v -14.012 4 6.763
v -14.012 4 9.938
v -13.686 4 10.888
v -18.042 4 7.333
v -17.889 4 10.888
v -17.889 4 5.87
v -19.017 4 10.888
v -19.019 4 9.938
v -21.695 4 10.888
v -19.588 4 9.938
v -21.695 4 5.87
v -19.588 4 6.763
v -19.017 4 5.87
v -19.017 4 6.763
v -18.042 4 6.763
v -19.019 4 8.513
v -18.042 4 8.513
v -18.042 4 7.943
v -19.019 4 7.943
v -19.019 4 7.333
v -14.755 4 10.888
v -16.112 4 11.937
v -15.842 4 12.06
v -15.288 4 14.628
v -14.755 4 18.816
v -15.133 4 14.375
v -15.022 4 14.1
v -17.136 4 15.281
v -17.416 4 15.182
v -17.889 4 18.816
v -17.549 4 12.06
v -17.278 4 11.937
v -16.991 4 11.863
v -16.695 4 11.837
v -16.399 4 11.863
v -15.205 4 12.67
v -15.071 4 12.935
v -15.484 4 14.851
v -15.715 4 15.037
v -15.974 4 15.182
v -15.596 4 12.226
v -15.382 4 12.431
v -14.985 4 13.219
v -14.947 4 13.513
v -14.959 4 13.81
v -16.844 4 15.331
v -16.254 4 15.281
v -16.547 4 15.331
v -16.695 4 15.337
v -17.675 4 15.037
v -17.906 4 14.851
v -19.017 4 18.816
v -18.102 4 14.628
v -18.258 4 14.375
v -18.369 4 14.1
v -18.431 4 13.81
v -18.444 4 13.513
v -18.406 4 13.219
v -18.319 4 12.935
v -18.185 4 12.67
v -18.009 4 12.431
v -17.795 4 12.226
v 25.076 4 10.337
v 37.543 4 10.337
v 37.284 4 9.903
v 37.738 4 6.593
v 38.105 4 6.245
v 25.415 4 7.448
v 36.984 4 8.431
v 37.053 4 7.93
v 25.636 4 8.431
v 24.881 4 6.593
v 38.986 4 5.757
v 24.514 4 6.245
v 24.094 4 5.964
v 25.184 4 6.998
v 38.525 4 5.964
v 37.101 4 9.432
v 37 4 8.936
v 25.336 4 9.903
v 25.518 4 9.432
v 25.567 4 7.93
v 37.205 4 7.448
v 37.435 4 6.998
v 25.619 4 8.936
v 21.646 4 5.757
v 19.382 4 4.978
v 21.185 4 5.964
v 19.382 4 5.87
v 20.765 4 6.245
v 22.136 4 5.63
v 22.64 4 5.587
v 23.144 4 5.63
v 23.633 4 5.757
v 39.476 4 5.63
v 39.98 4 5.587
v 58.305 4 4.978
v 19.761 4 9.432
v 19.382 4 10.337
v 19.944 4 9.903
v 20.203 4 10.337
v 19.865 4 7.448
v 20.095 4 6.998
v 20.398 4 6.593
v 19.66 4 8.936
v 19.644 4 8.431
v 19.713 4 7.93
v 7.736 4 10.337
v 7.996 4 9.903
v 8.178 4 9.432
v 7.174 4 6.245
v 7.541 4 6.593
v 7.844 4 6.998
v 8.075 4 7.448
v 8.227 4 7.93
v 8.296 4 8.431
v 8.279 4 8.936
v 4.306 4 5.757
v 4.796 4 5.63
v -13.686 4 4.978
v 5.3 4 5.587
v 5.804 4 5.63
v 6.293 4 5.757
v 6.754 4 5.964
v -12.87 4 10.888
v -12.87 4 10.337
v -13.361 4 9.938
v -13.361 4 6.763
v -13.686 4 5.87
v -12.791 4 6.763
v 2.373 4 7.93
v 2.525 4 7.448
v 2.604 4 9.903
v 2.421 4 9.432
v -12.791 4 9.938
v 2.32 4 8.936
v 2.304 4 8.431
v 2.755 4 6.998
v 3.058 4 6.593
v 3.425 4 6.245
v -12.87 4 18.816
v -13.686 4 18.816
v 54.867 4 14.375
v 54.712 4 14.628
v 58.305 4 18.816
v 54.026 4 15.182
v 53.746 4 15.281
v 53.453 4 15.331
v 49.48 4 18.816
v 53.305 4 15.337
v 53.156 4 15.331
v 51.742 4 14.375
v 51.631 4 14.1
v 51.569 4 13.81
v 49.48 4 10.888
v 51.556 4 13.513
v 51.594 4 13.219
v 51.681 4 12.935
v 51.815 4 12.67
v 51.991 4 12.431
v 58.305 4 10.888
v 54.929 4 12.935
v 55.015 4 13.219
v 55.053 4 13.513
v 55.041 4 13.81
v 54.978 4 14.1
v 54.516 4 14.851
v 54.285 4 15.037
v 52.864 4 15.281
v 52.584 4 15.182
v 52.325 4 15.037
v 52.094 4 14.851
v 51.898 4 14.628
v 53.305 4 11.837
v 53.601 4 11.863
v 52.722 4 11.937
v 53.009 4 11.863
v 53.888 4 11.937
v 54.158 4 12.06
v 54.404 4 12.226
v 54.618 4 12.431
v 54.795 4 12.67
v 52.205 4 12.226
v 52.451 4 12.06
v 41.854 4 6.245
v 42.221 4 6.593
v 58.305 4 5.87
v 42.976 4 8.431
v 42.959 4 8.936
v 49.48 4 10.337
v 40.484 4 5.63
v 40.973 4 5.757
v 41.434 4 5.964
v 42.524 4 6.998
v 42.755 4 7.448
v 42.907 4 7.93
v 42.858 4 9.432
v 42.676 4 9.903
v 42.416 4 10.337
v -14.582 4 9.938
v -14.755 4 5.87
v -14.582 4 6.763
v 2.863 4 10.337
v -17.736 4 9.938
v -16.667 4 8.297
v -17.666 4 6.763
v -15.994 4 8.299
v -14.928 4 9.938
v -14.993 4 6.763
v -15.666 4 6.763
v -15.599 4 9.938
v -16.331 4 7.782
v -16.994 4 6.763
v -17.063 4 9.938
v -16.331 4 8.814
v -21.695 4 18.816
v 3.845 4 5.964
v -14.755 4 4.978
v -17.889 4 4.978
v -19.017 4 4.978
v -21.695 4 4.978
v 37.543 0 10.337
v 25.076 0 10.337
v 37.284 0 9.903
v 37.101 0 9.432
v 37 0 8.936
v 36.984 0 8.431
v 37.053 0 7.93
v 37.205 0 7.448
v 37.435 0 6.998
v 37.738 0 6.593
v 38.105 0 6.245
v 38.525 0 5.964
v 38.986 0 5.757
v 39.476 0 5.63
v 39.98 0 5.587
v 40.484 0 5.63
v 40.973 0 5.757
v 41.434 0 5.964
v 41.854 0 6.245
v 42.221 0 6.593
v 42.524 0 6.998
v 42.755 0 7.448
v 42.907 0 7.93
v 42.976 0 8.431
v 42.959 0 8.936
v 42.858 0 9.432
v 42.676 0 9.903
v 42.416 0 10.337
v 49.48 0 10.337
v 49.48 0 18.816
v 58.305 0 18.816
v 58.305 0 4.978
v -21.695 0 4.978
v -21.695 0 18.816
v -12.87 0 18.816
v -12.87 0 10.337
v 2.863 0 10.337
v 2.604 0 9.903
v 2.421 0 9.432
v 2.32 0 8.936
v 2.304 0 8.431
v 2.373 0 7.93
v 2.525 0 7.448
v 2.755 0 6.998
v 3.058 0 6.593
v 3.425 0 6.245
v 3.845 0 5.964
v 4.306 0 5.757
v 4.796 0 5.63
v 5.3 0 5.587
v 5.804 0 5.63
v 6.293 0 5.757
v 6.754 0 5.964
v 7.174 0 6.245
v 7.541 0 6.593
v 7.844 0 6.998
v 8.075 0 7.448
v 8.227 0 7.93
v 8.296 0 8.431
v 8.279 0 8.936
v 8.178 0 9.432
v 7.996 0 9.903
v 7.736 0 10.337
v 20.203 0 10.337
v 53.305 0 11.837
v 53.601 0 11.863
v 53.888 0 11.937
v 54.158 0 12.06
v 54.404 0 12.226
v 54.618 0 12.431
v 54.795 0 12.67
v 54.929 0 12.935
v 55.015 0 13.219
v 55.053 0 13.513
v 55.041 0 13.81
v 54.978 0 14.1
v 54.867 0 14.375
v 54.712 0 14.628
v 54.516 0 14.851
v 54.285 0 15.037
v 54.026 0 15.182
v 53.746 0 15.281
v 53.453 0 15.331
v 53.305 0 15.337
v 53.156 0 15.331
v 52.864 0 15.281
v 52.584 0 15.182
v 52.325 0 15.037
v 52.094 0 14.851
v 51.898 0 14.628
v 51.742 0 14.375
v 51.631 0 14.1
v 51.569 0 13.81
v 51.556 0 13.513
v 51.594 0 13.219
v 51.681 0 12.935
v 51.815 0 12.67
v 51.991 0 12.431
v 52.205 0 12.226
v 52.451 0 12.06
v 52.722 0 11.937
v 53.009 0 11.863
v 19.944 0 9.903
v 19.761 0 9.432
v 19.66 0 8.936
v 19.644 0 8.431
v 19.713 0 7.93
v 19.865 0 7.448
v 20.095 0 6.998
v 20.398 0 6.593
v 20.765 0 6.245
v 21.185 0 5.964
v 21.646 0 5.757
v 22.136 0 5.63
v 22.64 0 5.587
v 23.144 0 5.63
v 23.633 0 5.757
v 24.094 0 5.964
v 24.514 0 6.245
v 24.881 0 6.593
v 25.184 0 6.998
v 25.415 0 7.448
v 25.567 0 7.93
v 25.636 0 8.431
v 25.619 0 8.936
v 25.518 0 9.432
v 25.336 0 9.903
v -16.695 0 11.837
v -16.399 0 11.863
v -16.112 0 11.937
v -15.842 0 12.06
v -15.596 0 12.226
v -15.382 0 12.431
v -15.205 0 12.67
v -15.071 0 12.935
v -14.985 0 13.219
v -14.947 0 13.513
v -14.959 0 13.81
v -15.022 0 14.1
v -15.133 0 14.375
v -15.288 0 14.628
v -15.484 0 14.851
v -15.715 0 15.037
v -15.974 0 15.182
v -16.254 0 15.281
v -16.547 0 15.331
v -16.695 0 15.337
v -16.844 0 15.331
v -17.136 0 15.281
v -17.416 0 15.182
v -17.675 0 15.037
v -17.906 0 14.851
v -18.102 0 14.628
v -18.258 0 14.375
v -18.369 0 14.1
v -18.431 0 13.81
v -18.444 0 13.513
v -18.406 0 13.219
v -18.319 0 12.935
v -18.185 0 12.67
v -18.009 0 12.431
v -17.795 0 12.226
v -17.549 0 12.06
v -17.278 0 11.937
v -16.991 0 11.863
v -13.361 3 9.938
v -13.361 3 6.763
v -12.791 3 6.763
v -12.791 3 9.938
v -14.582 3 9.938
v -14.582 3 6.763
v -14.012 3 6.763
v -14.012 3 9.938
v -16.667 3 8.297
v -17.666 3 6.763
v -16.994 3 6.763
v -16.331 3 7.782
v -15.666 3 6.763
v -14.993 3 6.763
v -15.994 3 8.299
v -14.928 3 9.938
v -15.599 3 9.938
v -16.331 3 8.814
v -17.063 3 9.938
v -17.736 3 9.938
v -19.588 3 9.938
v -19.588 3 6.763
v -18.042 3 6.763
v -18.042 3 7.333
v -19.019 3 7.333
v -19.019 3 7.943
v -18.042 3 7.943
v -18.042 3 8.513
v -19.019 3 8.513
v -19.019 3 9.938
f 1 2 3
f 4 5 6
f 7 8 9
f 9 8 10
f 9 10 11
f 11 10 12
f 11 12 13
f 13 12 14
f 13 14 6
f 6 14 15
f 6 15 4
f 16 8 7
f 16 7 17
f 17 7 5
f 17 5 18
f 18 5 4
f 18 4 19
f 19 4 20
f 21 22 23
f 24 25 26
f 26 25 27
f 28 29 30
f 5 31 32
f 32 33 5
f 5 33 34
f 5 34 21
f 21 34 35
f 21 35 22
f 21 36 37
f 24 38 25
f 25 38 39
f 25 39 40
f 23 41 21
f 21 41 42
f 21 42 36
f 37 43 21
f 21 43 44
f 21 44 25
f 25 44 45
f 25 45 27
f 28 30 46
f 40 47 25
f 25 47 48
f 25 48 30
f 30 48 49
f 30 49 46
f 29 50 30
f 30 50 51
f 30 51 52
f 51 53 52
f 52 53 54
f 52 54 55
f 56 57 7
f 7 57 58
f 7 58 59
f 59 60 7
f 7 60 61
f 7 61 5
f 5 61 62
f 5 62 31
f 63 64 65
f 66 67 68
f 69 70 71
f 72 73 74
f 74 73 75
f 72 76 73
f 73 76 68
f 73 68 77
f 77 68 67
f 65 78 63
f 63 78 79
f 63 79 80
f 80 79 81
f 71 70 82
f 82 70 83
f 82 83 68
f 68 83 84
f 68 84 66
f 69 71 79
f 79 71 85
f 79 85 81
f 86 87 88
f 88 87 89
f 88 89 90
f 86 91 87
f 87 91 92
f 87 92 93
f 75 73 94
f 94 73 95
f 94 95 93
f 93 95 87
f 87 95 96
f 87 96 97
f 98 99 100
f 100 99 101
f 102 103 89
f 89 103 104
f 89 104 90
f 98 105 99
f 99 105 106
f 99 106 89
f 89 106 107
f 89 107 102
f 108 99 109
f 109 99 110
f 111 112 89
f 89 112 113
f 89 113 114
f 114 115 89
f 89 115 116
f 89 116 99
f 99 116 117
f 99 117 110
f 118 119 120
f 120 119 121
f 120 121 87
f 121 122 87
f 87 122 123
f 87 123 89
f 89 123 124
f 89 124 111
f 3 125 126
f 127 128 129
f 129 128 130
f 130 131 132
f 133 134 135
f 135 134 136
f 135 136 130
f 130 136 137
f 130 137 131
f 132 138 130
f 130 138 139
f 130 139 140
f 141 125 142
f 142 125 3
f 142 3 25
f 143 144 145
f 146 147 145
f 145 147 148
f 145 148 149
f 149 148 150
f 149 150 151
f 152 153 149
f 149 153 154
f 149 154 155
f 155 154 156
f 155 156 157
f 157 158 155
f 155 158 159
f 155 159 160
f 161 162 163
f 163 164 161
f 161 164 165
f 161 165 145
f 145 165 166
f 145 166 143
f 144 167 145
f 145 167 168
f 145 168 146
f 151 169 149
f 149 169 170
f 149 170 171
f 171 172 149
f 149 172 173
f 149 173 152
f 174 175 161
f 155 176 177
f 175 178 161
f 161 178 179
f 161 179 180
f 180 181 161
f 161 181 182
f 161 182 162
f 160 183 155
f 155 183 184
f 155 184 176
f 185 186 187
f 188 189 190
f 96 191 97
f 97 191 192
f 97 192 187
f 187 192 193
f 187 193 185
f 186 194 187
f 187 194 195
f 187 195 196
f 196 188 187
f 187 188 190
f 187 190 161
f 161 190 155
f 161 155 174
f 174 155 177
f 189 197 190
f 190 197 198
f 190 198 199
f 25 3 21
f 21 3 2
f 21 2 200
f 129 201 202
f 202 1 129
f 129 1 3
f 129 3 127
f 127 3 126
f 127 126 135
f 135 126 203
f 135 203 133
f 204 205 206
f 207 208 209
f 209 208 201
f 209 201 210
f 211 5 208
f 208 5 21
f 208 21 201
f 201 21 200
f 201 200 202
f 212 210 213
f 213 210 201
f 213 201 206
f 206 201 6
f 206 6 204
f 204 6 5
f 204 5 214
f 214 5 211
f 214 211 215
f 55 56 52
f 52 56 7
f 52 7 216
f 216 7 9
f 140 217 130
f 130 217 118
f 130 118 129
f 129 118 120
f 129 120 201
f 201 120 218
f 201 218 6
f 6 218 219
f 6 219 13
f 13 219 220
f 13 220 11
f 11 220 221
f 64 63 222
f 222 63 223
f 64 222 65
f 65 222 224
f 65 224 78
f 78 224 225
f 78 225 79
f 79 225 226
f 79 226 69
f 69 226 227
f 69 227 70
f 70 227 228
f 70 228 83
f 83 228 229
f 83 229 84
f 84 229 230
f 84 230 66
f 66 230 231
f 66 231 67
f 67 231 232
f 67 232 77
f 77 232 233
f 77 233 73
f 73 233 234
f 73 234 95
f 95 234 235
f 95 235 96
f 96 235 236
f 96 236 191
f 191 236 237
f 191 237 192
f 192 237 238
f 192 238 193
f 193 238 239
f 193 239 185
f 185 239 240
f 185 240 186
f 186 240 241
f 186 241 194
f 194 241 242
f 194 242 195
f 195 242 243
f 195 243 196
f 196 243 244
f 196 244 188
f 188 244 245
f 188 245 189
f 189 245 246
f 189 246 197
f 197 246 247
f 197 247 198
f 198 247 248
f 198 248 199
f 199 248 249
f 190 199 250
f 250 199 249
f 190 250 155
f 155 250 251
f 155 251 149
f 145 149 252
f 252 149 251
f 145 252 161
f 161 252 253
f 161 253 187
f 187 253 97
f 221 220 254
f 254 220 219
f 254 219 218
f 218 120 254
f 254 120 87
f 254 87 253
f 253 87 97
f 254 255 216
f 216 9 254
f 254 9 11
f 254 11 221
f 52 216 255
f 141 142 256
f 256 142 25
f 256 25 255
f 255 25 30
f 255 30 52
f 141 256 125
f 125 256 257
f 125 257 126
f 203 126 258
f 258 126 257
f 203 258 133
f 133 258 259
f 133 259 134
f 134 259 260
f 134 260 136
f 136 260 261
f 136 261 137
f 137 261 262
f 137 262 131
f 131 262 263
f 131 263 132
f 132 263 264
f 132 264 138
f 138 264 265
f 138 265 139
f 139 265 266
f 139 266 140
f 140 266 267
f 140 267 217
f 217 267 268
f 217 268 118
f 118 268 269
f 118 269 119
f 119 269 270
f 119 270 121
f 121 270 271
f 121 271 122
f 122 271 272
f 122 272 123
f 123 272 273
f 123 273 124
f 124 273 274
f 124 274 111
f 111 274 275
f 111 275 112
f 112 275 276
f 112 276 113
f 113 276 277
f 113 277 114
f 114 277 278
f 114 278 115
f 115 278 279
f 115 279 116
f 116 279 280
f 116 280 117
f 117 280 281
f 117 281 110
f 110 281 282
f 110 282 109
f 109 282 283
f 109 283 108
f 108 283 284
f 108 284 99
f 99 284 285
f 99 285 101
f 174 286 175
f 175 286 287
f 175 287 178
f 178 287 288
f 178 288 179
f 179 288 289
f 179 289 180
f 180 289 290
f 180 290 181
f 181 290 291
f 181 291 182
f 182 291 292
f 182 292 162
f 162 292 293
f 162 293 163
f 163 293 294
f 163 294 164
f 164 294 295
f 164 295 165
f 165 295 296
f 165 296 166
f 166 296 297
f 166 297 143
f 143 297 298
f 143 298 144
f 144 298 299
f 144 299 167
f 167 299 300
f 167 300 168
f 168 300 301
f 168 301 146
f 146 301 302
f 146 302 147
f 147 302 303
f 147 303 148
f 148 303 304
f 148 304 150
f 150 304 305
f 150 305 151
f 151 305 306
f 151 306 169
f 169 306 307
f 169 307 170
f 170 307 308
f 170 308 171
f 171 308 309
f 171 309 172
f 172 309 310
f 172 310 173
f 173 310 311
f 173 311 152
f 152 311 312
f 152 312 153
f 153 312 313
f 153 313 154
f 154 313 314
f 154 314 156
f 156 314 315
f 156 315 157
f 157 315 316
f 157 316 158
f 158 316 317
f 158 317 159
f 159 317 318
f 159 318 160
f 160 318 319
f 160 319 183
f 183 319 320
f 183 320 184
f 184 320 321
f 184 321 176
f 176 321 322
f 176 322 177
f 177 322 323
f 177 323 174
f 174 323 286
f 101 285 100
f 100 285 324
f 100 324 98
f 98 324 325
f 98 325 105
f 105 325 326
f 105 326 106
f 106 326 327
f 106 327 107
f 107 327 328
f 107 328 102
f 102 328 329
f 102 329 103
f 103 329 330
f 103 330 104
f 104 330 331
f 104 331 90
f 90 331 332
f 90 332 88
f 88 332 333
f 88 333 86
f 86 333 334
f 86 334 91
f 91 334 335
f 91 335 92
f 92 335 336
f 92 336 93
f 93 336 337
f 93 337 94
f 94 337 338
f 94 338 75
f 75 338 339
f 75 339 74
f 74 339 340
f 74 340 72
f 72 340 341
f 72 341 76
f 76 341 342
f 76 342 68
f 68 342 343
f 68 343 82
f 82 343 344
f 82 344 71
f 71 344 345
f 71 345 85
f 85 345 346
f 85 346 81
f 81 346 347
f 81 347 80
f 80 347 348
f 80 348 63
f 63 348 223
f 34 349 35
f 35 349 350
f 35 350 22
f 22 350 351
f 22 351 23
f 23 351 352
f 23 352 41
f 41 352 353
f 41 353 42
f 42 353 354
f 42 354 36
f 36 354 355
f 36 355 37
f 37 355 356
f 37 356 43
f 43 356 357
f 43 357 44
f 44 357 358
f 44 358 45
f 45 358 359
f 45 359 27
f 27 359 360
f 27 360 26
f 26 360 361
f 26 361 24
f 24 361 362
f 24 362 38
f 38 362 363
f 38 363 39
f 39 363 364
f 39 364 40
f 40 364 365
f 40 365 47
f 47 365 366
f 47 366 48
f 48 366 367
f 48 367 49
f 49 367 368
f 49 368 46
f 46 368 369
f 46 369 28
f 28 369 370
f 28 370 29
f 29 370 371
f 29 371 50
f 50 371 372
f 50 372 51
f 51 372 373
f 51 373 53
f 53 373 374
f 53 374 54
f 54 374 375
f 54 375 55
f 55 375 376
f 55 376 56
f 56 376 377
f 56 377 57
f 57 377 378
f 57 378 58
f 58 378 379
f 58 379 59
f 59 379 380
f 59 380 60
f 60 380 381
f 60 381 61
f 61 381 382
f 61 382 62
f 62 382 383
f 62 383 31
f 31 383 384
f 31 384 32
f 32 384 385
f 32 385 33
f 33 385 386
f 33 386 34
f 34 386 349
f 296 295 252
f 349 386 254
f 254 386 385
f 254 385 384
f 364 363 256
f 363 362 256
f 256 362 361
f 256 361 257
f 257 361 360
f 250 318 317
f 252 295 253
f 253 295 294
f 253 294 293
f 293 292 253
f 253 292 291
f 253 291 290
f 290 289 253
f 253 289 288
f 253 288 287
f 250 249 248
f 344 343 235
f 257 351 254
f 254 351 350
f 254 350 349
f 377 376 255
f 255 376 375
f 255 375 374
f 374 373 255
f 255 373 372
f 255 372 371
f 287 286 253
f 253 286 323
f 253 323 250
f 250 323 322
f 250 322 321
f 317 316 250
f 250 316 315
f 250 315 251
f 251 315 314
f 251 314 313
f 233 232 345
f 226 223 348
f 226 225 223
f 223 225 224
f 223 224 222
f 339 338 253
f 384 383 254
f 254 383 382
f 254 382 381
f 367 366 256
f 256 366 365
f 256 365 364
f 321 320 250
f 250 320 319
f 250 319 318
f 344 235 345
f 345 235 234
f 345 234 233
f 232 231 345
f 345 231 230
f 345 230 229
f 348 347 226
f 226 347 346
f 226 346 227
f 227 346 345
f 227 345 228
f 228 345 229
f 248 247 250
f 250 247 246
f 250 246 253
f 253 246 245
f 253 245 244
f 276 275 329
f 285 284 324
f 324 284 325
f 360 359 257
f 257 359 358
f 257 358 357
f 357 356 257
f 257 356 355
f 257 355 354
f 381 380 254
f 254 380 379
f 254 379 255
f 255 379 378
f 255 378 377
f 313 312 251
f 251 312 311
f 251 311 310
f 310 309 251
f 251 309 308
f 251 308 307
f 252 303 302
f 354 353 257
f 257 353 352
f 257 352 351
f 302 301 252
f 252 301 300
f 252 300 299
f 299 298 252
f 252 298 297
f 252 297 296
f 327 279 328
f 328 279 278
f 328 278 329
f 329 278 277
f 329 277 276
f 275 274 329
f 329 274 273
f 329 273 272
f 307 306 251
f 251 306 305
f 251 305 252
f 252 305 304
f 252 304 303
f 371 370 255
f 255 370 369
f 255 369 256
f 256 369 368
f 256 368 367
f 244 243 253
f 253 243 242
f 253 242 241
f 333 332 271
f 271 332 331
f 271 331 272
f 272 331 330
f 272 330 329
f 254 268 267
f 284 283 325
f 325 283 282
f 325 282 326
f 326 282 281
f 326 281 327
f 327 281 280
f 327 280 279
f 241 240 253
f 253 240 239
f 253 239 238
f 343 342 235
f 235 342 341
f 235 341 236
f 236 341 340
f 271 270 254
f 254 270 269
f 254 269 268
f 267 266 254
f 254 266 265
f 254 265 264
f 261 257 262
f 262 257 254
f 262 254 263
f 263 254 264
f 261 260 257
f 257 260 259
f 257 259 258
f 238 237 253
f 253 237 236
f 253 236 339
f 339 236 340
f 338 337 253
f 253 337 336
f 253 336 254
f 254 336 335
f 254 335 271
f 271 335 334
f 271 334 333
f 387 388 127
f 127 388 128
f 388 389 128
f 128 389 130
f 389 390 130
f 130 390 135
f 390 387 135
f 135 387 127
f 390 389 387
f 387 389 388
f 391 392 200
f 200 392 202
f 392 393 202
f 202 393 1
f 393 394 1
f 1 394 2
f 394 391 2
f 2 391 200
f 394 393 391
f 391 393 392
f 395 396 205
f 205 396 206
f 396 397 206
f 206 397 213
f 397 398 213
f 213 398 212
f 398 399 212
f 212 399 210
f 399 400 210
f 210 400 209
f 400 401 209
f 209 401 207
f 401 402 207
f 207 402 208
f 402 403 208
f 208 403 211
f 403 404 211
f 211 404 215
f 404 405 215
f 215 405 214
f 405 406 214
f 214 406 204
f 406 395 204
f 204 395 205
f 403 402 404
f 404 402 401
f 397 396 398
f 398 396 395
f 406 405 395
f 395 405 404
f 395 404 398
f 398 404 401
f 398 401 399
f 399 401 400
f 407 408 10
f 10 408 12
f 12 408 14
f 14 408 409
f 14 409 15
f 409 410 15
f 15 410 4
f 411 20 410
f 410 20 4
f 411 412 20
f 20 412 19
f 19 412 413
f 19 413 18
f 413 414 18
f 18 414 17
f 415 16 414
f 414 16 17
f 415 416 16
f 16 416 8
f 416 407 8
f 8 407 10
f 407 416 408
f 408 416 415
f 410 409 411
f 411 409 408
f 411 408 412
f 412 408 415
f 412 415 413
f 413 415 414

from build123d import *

# Parameters (mm, degrees)
BOSS_EXTRUDE1_OUTLINE_R = 1.75
BOSS_EXTRUDE1_DEPTH     = 4
SKETCH2_W               = 0.569871794
SKETCH2_H               = 3.175
SKETCH2_W_2             = 0.569871795
CUT_EXTRUDE1_DEPTH      = 1


# Read off the part's stored shape, not the designer's step: Boss-Extrude1
with BuildPart() as part:
    # Boss-Extrude1 outline → Boss-Extrude1 (new body)
    with BuildSketch(Plane(origin=(0, 0, 0), x_dir=(1, 0, 0), z_dir=(0, 1, 0))):
        with BuildLine():
            Line((25.076474615, -10.33744254), (37.54307775, -10.33744254))
            ThreePointArc((37.54307775, -10.33744254), (39.979776182, -5.587442326), (42.416474615, -10.33744254))
            Line((42.416474615, -10.33744254), (49.479776182, -10.33744254))
            Line((49.479776182, -10.33744254), (49.479776182, -18.81631662))
            Line((49.479776182, -18.81631662), (58.304776182, -18.81631662))
            Line((58.304776182, -18.81631662), (58.304776182, -4.977921711))
            Line((58.304776182, -4.977921711), (-21.695223818, -4.977921711))
            Line((-21.695223818, -4.977921711), (-21.695223818, -18.81631662))
            Line((-21.695223818, -18.81631662), (-12.870223818, -18.81631662))
            Line((-12.870223818, -18.81631662), (-12.870223818, -10.33744254))
            Line((-12.870223818, -10.33744254), (2.86307775, -10.33744254))
            ThreePointArc((2.86307775, -10.33744254), (5.299776182, -5.587442326), (7.736474615, -10.33744254))
            Line((7.736474615, -10.33744254), (20.20307775, -10.33744254))
            ThreePointArc((20.20307775, -10.33744254), (22.639776183, -5.587442326), (25.076474615, -10.33744254))
        make_face()
        with Locations((-16.695223818, -13.587442433)):
            Circle(BOSS_EXTRUDE1_OUTLINE_R, mode=Mode.SUBTRACT)
        with Locations((53.304776182, -13.587442433)):
            Circle(BOSS_EXTRUDE1_OUTLINE_R, mode=Mode.SUBTRACT)
    extrude(amount=BOSS_EXTRUDE1_DEPTH)

    # Sketch2 → Cut-Extrude1 (cut)
    with BuildSketch(Plane(origin=(0, 4, 0), x_dir=(1, 0, 0), z_dir=(0, 1, 0))):
        Polygon((-19.588408787, -6.762736227), (-18.041613915, -6.762736227), (-18.041613915, -7.332608022), (-19.018536992, -7.332608022), (-19.018536992, -7.943184945), (-18.041613915, -7.943184945), (-18.041613915, -8.51305674), (-19.018536992, -8.51305674), (-19.018536992, -9.937736227), (-19.588408787, -9.937736227), align=None)
        Polygon((-17.665727497, -6.762736227), (-16.994092881, -6.762736227), (-16.330726495, -7.782272485), (-15.666088073, -6.762736227), (-14.992545405, -6.762736227), (-15.99427317, -8.298718799), (-14.927671607, -9.937736227), (-15.599306223, -9.937736227), (-16.330726495, -8.813893078), (-17.063418803, -9.937736227), (-17.736325453, -9.937736227), (-16.666543803, -8.297446764), align=None)
        with Locations((-14.29674212, -8.350236227)):
            Rectangle(SKETCH2_W, SKETCH2_H)
        with Locations((-13.075588274, -8.350236227)):
            Rectangle(SKETCH2_W_2, SKETCH2_H)
    extrude(amount=-CUT_EXTRUDE1_DEPTH, mode=Mode.SUBTRACT)


solid = part.part
